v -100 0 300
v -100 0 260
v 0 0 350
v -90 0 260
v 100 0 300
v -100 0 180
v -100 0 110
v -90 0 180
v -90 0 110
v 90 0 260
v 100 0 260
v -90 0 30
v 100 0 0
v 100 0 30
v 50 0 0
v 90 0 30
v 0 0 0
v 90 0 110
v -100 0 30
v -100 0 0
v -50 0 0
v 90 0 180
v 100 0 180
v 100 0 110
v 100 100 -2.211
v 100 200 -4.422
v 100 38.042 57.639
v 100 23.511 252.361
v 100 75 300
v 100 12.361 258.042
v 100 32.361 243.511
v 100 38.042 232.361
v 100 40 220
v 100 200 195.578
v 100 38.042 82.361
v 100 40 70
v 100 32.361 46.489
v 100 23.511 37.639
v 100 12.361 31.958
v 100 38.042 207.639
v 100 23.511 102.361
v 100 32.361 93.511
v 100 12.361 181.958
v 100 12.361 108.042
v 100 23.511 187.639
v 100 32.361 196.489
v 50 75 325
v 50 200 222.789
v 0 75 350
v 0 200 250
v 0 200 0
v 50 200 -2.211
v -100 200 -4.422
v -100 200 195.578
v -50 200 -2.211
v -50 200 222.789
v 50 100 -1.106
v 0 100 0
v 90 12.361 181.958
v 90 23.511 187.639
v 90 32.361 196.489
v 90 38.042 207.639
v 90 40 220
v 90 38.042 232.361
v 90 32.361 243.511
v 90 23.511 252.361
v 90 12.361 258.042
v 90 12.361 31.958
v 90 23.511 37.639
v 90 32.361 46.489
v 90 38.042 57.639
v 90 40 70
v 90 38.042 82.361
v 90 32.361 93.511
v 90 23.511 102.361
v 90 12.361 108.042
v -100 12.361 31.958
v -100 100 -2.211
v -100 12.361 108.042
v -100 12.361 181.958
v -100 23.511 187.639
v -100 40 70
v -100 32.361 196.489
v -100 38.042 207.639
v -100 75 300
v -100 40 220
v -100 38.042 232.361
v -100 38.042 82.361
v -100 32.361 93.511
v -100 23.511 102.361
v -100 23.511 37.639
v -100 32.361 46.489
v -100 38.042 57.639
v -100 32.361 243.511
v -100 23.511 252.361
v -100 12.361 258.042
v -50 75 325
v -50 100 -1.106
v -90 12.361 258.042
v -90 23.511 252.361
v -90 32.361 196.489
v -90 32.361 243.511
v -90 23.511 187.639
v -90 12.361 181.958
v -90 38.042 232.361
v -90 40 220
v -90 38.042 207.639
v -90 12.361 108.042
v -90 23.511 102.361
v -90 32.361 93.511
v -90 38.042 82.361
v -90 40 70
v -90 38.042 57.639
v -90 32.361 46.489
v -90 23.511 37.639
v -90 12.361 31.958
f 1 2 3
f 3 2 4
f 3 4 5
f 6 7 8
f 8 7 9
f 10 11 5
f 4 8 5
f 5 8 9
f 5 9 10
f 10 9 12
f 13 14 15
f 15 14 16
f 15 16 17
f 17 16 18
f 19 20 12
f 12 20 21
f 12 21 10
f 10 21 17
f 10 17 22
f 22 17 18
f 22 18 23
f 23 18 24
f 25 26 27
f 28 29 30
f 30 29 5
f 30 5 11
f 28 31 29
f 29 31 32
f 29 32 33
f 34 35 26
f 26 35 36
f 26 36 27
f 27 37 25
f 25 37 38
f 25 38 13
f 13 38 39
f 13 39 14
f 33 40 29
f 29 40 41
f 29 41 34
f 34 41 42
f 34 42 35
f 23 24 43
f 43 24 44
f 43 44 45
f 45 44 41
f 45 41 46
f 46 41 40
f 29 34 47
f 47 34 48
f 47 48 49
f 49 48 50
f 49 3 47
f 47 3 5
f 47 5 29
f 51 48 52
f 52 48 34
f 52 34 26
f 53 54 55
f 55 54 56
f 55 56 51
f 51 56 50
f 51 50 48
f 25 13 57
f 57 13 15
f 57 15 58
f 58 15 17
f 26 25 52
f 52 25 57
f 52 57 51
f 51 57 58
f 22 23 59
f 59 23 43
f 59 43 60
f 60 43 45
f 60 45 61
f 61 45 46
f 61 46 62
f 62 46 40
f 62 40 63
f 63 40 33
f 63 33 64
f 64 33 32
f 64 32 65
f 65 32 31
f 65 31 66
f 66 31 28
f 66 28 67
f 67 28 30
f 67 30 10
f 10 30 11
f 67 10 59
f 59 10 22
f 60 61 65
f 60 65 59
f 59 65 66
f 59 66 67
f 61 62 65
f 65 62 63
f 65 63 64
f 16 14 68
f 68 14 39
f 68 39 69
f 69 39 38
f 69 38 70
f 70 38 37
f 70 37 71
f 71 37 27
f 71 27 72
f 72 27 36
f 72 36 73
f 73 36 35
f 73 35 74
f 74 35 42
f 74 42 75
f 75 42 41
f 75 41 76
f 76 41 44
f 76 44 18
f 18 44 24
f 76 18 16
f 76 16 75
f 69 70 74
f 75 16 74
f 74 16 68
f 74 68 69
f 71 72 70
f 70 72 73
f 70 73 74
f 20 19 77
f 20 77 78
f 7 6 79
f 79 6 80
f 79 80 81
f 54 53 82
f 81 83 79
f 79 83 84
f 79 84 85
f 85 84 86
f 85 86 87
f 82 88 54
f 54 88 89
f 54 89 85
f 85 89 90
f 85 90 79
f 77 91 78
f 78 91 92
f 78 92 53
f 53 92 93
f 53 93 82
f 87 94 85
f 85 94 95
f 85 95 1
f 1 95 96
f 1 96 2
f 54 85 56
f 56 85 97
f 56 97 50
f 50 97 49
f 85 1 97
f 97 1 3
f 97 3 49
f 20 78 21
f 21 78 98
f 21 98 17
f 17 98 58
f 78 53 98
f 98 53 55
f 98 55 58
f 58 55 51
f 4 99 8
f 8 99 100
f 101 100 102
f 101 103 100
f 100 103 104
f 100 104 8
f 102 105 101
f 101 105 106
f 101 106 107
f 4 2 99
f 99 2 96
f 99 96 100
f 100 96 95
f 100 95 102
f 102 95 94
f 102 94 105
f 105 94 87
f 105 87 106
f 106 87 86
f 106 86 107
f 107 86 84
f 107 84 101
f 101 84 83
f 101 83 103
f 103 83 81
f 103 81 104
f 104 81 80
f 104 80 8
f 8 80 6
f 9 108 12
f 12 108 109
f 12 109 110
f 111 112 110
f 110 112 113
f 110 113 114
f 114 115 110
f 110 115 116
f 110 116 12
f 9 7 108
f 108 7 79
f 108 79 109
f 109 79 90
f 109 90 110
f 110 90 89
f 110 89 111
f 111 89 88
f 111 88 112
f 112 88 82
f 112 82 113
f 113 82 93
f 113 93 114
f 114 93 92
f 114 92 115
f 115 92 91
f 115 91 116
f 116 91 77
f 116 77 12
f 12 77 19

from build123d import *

# Parameters (mm, degrees)
SKETCH3_R          = 40
CUT_EXTRUDE1_DEPTH = 10


with BuildPart() as part:
    # Sketch1 → Loft1 section 0
    with BuildSketch(Plane(origin=(0, 0, 0), x_dir=(0, 0, -1), z_dir=(1, 0, 0))):
        with BuildLine():
            Line((0, 0), (-350, 0))
            Line((-350, 0), (-350, 75))
            Line((-350, 75), (-250, 200))
            Line((-250, 200), (0, 200))
            Line((0, 200), (0, 0))
        make_face()
    # Sketch2 → Loft1 section 1
    with BuildSketch(Plane(origin=(100, 0, 0), x_dir=(0, 0, -1), z_dir=(1, 0, 0))):
        with BuildLine():
            Line((0, 0), (4.422435972, 200))
            Line((4.422435972, 200), (-195.577564028, 200))
            Line((-195.577564028, 200), (-300, 75))
            Line((-300, 75), (-300, 0))
            Line((-300, 0), (0, 0))
        make_face()
    loft1 = loft()

    # Sketch3 → Cut-Extrude1 (cut)
    with BuildSketch(Plane(origin=(100, 0, 0), x_dir=(0, 0, -1), z_dir=(1, 0, 0))):
        with Locations((-220, 0)):
            Circle(SKETCH3_R)
        with Locations((-70, 0)):
            Circle(SKETCH3_R)
    cut_extrude1 = extrude(amount=-CUT_EXTRUDE1_DEPTH, mode=Mode.SUBTRACT)

    # Mirror2: Loft1, Cut-Extrude1 across plane
    add(loft1.mirror(Plane.ZY))
    add(cut_extrude1.mirror(Plane.ZY), mode=Mode.SUBTRACT)


solid = part.part
